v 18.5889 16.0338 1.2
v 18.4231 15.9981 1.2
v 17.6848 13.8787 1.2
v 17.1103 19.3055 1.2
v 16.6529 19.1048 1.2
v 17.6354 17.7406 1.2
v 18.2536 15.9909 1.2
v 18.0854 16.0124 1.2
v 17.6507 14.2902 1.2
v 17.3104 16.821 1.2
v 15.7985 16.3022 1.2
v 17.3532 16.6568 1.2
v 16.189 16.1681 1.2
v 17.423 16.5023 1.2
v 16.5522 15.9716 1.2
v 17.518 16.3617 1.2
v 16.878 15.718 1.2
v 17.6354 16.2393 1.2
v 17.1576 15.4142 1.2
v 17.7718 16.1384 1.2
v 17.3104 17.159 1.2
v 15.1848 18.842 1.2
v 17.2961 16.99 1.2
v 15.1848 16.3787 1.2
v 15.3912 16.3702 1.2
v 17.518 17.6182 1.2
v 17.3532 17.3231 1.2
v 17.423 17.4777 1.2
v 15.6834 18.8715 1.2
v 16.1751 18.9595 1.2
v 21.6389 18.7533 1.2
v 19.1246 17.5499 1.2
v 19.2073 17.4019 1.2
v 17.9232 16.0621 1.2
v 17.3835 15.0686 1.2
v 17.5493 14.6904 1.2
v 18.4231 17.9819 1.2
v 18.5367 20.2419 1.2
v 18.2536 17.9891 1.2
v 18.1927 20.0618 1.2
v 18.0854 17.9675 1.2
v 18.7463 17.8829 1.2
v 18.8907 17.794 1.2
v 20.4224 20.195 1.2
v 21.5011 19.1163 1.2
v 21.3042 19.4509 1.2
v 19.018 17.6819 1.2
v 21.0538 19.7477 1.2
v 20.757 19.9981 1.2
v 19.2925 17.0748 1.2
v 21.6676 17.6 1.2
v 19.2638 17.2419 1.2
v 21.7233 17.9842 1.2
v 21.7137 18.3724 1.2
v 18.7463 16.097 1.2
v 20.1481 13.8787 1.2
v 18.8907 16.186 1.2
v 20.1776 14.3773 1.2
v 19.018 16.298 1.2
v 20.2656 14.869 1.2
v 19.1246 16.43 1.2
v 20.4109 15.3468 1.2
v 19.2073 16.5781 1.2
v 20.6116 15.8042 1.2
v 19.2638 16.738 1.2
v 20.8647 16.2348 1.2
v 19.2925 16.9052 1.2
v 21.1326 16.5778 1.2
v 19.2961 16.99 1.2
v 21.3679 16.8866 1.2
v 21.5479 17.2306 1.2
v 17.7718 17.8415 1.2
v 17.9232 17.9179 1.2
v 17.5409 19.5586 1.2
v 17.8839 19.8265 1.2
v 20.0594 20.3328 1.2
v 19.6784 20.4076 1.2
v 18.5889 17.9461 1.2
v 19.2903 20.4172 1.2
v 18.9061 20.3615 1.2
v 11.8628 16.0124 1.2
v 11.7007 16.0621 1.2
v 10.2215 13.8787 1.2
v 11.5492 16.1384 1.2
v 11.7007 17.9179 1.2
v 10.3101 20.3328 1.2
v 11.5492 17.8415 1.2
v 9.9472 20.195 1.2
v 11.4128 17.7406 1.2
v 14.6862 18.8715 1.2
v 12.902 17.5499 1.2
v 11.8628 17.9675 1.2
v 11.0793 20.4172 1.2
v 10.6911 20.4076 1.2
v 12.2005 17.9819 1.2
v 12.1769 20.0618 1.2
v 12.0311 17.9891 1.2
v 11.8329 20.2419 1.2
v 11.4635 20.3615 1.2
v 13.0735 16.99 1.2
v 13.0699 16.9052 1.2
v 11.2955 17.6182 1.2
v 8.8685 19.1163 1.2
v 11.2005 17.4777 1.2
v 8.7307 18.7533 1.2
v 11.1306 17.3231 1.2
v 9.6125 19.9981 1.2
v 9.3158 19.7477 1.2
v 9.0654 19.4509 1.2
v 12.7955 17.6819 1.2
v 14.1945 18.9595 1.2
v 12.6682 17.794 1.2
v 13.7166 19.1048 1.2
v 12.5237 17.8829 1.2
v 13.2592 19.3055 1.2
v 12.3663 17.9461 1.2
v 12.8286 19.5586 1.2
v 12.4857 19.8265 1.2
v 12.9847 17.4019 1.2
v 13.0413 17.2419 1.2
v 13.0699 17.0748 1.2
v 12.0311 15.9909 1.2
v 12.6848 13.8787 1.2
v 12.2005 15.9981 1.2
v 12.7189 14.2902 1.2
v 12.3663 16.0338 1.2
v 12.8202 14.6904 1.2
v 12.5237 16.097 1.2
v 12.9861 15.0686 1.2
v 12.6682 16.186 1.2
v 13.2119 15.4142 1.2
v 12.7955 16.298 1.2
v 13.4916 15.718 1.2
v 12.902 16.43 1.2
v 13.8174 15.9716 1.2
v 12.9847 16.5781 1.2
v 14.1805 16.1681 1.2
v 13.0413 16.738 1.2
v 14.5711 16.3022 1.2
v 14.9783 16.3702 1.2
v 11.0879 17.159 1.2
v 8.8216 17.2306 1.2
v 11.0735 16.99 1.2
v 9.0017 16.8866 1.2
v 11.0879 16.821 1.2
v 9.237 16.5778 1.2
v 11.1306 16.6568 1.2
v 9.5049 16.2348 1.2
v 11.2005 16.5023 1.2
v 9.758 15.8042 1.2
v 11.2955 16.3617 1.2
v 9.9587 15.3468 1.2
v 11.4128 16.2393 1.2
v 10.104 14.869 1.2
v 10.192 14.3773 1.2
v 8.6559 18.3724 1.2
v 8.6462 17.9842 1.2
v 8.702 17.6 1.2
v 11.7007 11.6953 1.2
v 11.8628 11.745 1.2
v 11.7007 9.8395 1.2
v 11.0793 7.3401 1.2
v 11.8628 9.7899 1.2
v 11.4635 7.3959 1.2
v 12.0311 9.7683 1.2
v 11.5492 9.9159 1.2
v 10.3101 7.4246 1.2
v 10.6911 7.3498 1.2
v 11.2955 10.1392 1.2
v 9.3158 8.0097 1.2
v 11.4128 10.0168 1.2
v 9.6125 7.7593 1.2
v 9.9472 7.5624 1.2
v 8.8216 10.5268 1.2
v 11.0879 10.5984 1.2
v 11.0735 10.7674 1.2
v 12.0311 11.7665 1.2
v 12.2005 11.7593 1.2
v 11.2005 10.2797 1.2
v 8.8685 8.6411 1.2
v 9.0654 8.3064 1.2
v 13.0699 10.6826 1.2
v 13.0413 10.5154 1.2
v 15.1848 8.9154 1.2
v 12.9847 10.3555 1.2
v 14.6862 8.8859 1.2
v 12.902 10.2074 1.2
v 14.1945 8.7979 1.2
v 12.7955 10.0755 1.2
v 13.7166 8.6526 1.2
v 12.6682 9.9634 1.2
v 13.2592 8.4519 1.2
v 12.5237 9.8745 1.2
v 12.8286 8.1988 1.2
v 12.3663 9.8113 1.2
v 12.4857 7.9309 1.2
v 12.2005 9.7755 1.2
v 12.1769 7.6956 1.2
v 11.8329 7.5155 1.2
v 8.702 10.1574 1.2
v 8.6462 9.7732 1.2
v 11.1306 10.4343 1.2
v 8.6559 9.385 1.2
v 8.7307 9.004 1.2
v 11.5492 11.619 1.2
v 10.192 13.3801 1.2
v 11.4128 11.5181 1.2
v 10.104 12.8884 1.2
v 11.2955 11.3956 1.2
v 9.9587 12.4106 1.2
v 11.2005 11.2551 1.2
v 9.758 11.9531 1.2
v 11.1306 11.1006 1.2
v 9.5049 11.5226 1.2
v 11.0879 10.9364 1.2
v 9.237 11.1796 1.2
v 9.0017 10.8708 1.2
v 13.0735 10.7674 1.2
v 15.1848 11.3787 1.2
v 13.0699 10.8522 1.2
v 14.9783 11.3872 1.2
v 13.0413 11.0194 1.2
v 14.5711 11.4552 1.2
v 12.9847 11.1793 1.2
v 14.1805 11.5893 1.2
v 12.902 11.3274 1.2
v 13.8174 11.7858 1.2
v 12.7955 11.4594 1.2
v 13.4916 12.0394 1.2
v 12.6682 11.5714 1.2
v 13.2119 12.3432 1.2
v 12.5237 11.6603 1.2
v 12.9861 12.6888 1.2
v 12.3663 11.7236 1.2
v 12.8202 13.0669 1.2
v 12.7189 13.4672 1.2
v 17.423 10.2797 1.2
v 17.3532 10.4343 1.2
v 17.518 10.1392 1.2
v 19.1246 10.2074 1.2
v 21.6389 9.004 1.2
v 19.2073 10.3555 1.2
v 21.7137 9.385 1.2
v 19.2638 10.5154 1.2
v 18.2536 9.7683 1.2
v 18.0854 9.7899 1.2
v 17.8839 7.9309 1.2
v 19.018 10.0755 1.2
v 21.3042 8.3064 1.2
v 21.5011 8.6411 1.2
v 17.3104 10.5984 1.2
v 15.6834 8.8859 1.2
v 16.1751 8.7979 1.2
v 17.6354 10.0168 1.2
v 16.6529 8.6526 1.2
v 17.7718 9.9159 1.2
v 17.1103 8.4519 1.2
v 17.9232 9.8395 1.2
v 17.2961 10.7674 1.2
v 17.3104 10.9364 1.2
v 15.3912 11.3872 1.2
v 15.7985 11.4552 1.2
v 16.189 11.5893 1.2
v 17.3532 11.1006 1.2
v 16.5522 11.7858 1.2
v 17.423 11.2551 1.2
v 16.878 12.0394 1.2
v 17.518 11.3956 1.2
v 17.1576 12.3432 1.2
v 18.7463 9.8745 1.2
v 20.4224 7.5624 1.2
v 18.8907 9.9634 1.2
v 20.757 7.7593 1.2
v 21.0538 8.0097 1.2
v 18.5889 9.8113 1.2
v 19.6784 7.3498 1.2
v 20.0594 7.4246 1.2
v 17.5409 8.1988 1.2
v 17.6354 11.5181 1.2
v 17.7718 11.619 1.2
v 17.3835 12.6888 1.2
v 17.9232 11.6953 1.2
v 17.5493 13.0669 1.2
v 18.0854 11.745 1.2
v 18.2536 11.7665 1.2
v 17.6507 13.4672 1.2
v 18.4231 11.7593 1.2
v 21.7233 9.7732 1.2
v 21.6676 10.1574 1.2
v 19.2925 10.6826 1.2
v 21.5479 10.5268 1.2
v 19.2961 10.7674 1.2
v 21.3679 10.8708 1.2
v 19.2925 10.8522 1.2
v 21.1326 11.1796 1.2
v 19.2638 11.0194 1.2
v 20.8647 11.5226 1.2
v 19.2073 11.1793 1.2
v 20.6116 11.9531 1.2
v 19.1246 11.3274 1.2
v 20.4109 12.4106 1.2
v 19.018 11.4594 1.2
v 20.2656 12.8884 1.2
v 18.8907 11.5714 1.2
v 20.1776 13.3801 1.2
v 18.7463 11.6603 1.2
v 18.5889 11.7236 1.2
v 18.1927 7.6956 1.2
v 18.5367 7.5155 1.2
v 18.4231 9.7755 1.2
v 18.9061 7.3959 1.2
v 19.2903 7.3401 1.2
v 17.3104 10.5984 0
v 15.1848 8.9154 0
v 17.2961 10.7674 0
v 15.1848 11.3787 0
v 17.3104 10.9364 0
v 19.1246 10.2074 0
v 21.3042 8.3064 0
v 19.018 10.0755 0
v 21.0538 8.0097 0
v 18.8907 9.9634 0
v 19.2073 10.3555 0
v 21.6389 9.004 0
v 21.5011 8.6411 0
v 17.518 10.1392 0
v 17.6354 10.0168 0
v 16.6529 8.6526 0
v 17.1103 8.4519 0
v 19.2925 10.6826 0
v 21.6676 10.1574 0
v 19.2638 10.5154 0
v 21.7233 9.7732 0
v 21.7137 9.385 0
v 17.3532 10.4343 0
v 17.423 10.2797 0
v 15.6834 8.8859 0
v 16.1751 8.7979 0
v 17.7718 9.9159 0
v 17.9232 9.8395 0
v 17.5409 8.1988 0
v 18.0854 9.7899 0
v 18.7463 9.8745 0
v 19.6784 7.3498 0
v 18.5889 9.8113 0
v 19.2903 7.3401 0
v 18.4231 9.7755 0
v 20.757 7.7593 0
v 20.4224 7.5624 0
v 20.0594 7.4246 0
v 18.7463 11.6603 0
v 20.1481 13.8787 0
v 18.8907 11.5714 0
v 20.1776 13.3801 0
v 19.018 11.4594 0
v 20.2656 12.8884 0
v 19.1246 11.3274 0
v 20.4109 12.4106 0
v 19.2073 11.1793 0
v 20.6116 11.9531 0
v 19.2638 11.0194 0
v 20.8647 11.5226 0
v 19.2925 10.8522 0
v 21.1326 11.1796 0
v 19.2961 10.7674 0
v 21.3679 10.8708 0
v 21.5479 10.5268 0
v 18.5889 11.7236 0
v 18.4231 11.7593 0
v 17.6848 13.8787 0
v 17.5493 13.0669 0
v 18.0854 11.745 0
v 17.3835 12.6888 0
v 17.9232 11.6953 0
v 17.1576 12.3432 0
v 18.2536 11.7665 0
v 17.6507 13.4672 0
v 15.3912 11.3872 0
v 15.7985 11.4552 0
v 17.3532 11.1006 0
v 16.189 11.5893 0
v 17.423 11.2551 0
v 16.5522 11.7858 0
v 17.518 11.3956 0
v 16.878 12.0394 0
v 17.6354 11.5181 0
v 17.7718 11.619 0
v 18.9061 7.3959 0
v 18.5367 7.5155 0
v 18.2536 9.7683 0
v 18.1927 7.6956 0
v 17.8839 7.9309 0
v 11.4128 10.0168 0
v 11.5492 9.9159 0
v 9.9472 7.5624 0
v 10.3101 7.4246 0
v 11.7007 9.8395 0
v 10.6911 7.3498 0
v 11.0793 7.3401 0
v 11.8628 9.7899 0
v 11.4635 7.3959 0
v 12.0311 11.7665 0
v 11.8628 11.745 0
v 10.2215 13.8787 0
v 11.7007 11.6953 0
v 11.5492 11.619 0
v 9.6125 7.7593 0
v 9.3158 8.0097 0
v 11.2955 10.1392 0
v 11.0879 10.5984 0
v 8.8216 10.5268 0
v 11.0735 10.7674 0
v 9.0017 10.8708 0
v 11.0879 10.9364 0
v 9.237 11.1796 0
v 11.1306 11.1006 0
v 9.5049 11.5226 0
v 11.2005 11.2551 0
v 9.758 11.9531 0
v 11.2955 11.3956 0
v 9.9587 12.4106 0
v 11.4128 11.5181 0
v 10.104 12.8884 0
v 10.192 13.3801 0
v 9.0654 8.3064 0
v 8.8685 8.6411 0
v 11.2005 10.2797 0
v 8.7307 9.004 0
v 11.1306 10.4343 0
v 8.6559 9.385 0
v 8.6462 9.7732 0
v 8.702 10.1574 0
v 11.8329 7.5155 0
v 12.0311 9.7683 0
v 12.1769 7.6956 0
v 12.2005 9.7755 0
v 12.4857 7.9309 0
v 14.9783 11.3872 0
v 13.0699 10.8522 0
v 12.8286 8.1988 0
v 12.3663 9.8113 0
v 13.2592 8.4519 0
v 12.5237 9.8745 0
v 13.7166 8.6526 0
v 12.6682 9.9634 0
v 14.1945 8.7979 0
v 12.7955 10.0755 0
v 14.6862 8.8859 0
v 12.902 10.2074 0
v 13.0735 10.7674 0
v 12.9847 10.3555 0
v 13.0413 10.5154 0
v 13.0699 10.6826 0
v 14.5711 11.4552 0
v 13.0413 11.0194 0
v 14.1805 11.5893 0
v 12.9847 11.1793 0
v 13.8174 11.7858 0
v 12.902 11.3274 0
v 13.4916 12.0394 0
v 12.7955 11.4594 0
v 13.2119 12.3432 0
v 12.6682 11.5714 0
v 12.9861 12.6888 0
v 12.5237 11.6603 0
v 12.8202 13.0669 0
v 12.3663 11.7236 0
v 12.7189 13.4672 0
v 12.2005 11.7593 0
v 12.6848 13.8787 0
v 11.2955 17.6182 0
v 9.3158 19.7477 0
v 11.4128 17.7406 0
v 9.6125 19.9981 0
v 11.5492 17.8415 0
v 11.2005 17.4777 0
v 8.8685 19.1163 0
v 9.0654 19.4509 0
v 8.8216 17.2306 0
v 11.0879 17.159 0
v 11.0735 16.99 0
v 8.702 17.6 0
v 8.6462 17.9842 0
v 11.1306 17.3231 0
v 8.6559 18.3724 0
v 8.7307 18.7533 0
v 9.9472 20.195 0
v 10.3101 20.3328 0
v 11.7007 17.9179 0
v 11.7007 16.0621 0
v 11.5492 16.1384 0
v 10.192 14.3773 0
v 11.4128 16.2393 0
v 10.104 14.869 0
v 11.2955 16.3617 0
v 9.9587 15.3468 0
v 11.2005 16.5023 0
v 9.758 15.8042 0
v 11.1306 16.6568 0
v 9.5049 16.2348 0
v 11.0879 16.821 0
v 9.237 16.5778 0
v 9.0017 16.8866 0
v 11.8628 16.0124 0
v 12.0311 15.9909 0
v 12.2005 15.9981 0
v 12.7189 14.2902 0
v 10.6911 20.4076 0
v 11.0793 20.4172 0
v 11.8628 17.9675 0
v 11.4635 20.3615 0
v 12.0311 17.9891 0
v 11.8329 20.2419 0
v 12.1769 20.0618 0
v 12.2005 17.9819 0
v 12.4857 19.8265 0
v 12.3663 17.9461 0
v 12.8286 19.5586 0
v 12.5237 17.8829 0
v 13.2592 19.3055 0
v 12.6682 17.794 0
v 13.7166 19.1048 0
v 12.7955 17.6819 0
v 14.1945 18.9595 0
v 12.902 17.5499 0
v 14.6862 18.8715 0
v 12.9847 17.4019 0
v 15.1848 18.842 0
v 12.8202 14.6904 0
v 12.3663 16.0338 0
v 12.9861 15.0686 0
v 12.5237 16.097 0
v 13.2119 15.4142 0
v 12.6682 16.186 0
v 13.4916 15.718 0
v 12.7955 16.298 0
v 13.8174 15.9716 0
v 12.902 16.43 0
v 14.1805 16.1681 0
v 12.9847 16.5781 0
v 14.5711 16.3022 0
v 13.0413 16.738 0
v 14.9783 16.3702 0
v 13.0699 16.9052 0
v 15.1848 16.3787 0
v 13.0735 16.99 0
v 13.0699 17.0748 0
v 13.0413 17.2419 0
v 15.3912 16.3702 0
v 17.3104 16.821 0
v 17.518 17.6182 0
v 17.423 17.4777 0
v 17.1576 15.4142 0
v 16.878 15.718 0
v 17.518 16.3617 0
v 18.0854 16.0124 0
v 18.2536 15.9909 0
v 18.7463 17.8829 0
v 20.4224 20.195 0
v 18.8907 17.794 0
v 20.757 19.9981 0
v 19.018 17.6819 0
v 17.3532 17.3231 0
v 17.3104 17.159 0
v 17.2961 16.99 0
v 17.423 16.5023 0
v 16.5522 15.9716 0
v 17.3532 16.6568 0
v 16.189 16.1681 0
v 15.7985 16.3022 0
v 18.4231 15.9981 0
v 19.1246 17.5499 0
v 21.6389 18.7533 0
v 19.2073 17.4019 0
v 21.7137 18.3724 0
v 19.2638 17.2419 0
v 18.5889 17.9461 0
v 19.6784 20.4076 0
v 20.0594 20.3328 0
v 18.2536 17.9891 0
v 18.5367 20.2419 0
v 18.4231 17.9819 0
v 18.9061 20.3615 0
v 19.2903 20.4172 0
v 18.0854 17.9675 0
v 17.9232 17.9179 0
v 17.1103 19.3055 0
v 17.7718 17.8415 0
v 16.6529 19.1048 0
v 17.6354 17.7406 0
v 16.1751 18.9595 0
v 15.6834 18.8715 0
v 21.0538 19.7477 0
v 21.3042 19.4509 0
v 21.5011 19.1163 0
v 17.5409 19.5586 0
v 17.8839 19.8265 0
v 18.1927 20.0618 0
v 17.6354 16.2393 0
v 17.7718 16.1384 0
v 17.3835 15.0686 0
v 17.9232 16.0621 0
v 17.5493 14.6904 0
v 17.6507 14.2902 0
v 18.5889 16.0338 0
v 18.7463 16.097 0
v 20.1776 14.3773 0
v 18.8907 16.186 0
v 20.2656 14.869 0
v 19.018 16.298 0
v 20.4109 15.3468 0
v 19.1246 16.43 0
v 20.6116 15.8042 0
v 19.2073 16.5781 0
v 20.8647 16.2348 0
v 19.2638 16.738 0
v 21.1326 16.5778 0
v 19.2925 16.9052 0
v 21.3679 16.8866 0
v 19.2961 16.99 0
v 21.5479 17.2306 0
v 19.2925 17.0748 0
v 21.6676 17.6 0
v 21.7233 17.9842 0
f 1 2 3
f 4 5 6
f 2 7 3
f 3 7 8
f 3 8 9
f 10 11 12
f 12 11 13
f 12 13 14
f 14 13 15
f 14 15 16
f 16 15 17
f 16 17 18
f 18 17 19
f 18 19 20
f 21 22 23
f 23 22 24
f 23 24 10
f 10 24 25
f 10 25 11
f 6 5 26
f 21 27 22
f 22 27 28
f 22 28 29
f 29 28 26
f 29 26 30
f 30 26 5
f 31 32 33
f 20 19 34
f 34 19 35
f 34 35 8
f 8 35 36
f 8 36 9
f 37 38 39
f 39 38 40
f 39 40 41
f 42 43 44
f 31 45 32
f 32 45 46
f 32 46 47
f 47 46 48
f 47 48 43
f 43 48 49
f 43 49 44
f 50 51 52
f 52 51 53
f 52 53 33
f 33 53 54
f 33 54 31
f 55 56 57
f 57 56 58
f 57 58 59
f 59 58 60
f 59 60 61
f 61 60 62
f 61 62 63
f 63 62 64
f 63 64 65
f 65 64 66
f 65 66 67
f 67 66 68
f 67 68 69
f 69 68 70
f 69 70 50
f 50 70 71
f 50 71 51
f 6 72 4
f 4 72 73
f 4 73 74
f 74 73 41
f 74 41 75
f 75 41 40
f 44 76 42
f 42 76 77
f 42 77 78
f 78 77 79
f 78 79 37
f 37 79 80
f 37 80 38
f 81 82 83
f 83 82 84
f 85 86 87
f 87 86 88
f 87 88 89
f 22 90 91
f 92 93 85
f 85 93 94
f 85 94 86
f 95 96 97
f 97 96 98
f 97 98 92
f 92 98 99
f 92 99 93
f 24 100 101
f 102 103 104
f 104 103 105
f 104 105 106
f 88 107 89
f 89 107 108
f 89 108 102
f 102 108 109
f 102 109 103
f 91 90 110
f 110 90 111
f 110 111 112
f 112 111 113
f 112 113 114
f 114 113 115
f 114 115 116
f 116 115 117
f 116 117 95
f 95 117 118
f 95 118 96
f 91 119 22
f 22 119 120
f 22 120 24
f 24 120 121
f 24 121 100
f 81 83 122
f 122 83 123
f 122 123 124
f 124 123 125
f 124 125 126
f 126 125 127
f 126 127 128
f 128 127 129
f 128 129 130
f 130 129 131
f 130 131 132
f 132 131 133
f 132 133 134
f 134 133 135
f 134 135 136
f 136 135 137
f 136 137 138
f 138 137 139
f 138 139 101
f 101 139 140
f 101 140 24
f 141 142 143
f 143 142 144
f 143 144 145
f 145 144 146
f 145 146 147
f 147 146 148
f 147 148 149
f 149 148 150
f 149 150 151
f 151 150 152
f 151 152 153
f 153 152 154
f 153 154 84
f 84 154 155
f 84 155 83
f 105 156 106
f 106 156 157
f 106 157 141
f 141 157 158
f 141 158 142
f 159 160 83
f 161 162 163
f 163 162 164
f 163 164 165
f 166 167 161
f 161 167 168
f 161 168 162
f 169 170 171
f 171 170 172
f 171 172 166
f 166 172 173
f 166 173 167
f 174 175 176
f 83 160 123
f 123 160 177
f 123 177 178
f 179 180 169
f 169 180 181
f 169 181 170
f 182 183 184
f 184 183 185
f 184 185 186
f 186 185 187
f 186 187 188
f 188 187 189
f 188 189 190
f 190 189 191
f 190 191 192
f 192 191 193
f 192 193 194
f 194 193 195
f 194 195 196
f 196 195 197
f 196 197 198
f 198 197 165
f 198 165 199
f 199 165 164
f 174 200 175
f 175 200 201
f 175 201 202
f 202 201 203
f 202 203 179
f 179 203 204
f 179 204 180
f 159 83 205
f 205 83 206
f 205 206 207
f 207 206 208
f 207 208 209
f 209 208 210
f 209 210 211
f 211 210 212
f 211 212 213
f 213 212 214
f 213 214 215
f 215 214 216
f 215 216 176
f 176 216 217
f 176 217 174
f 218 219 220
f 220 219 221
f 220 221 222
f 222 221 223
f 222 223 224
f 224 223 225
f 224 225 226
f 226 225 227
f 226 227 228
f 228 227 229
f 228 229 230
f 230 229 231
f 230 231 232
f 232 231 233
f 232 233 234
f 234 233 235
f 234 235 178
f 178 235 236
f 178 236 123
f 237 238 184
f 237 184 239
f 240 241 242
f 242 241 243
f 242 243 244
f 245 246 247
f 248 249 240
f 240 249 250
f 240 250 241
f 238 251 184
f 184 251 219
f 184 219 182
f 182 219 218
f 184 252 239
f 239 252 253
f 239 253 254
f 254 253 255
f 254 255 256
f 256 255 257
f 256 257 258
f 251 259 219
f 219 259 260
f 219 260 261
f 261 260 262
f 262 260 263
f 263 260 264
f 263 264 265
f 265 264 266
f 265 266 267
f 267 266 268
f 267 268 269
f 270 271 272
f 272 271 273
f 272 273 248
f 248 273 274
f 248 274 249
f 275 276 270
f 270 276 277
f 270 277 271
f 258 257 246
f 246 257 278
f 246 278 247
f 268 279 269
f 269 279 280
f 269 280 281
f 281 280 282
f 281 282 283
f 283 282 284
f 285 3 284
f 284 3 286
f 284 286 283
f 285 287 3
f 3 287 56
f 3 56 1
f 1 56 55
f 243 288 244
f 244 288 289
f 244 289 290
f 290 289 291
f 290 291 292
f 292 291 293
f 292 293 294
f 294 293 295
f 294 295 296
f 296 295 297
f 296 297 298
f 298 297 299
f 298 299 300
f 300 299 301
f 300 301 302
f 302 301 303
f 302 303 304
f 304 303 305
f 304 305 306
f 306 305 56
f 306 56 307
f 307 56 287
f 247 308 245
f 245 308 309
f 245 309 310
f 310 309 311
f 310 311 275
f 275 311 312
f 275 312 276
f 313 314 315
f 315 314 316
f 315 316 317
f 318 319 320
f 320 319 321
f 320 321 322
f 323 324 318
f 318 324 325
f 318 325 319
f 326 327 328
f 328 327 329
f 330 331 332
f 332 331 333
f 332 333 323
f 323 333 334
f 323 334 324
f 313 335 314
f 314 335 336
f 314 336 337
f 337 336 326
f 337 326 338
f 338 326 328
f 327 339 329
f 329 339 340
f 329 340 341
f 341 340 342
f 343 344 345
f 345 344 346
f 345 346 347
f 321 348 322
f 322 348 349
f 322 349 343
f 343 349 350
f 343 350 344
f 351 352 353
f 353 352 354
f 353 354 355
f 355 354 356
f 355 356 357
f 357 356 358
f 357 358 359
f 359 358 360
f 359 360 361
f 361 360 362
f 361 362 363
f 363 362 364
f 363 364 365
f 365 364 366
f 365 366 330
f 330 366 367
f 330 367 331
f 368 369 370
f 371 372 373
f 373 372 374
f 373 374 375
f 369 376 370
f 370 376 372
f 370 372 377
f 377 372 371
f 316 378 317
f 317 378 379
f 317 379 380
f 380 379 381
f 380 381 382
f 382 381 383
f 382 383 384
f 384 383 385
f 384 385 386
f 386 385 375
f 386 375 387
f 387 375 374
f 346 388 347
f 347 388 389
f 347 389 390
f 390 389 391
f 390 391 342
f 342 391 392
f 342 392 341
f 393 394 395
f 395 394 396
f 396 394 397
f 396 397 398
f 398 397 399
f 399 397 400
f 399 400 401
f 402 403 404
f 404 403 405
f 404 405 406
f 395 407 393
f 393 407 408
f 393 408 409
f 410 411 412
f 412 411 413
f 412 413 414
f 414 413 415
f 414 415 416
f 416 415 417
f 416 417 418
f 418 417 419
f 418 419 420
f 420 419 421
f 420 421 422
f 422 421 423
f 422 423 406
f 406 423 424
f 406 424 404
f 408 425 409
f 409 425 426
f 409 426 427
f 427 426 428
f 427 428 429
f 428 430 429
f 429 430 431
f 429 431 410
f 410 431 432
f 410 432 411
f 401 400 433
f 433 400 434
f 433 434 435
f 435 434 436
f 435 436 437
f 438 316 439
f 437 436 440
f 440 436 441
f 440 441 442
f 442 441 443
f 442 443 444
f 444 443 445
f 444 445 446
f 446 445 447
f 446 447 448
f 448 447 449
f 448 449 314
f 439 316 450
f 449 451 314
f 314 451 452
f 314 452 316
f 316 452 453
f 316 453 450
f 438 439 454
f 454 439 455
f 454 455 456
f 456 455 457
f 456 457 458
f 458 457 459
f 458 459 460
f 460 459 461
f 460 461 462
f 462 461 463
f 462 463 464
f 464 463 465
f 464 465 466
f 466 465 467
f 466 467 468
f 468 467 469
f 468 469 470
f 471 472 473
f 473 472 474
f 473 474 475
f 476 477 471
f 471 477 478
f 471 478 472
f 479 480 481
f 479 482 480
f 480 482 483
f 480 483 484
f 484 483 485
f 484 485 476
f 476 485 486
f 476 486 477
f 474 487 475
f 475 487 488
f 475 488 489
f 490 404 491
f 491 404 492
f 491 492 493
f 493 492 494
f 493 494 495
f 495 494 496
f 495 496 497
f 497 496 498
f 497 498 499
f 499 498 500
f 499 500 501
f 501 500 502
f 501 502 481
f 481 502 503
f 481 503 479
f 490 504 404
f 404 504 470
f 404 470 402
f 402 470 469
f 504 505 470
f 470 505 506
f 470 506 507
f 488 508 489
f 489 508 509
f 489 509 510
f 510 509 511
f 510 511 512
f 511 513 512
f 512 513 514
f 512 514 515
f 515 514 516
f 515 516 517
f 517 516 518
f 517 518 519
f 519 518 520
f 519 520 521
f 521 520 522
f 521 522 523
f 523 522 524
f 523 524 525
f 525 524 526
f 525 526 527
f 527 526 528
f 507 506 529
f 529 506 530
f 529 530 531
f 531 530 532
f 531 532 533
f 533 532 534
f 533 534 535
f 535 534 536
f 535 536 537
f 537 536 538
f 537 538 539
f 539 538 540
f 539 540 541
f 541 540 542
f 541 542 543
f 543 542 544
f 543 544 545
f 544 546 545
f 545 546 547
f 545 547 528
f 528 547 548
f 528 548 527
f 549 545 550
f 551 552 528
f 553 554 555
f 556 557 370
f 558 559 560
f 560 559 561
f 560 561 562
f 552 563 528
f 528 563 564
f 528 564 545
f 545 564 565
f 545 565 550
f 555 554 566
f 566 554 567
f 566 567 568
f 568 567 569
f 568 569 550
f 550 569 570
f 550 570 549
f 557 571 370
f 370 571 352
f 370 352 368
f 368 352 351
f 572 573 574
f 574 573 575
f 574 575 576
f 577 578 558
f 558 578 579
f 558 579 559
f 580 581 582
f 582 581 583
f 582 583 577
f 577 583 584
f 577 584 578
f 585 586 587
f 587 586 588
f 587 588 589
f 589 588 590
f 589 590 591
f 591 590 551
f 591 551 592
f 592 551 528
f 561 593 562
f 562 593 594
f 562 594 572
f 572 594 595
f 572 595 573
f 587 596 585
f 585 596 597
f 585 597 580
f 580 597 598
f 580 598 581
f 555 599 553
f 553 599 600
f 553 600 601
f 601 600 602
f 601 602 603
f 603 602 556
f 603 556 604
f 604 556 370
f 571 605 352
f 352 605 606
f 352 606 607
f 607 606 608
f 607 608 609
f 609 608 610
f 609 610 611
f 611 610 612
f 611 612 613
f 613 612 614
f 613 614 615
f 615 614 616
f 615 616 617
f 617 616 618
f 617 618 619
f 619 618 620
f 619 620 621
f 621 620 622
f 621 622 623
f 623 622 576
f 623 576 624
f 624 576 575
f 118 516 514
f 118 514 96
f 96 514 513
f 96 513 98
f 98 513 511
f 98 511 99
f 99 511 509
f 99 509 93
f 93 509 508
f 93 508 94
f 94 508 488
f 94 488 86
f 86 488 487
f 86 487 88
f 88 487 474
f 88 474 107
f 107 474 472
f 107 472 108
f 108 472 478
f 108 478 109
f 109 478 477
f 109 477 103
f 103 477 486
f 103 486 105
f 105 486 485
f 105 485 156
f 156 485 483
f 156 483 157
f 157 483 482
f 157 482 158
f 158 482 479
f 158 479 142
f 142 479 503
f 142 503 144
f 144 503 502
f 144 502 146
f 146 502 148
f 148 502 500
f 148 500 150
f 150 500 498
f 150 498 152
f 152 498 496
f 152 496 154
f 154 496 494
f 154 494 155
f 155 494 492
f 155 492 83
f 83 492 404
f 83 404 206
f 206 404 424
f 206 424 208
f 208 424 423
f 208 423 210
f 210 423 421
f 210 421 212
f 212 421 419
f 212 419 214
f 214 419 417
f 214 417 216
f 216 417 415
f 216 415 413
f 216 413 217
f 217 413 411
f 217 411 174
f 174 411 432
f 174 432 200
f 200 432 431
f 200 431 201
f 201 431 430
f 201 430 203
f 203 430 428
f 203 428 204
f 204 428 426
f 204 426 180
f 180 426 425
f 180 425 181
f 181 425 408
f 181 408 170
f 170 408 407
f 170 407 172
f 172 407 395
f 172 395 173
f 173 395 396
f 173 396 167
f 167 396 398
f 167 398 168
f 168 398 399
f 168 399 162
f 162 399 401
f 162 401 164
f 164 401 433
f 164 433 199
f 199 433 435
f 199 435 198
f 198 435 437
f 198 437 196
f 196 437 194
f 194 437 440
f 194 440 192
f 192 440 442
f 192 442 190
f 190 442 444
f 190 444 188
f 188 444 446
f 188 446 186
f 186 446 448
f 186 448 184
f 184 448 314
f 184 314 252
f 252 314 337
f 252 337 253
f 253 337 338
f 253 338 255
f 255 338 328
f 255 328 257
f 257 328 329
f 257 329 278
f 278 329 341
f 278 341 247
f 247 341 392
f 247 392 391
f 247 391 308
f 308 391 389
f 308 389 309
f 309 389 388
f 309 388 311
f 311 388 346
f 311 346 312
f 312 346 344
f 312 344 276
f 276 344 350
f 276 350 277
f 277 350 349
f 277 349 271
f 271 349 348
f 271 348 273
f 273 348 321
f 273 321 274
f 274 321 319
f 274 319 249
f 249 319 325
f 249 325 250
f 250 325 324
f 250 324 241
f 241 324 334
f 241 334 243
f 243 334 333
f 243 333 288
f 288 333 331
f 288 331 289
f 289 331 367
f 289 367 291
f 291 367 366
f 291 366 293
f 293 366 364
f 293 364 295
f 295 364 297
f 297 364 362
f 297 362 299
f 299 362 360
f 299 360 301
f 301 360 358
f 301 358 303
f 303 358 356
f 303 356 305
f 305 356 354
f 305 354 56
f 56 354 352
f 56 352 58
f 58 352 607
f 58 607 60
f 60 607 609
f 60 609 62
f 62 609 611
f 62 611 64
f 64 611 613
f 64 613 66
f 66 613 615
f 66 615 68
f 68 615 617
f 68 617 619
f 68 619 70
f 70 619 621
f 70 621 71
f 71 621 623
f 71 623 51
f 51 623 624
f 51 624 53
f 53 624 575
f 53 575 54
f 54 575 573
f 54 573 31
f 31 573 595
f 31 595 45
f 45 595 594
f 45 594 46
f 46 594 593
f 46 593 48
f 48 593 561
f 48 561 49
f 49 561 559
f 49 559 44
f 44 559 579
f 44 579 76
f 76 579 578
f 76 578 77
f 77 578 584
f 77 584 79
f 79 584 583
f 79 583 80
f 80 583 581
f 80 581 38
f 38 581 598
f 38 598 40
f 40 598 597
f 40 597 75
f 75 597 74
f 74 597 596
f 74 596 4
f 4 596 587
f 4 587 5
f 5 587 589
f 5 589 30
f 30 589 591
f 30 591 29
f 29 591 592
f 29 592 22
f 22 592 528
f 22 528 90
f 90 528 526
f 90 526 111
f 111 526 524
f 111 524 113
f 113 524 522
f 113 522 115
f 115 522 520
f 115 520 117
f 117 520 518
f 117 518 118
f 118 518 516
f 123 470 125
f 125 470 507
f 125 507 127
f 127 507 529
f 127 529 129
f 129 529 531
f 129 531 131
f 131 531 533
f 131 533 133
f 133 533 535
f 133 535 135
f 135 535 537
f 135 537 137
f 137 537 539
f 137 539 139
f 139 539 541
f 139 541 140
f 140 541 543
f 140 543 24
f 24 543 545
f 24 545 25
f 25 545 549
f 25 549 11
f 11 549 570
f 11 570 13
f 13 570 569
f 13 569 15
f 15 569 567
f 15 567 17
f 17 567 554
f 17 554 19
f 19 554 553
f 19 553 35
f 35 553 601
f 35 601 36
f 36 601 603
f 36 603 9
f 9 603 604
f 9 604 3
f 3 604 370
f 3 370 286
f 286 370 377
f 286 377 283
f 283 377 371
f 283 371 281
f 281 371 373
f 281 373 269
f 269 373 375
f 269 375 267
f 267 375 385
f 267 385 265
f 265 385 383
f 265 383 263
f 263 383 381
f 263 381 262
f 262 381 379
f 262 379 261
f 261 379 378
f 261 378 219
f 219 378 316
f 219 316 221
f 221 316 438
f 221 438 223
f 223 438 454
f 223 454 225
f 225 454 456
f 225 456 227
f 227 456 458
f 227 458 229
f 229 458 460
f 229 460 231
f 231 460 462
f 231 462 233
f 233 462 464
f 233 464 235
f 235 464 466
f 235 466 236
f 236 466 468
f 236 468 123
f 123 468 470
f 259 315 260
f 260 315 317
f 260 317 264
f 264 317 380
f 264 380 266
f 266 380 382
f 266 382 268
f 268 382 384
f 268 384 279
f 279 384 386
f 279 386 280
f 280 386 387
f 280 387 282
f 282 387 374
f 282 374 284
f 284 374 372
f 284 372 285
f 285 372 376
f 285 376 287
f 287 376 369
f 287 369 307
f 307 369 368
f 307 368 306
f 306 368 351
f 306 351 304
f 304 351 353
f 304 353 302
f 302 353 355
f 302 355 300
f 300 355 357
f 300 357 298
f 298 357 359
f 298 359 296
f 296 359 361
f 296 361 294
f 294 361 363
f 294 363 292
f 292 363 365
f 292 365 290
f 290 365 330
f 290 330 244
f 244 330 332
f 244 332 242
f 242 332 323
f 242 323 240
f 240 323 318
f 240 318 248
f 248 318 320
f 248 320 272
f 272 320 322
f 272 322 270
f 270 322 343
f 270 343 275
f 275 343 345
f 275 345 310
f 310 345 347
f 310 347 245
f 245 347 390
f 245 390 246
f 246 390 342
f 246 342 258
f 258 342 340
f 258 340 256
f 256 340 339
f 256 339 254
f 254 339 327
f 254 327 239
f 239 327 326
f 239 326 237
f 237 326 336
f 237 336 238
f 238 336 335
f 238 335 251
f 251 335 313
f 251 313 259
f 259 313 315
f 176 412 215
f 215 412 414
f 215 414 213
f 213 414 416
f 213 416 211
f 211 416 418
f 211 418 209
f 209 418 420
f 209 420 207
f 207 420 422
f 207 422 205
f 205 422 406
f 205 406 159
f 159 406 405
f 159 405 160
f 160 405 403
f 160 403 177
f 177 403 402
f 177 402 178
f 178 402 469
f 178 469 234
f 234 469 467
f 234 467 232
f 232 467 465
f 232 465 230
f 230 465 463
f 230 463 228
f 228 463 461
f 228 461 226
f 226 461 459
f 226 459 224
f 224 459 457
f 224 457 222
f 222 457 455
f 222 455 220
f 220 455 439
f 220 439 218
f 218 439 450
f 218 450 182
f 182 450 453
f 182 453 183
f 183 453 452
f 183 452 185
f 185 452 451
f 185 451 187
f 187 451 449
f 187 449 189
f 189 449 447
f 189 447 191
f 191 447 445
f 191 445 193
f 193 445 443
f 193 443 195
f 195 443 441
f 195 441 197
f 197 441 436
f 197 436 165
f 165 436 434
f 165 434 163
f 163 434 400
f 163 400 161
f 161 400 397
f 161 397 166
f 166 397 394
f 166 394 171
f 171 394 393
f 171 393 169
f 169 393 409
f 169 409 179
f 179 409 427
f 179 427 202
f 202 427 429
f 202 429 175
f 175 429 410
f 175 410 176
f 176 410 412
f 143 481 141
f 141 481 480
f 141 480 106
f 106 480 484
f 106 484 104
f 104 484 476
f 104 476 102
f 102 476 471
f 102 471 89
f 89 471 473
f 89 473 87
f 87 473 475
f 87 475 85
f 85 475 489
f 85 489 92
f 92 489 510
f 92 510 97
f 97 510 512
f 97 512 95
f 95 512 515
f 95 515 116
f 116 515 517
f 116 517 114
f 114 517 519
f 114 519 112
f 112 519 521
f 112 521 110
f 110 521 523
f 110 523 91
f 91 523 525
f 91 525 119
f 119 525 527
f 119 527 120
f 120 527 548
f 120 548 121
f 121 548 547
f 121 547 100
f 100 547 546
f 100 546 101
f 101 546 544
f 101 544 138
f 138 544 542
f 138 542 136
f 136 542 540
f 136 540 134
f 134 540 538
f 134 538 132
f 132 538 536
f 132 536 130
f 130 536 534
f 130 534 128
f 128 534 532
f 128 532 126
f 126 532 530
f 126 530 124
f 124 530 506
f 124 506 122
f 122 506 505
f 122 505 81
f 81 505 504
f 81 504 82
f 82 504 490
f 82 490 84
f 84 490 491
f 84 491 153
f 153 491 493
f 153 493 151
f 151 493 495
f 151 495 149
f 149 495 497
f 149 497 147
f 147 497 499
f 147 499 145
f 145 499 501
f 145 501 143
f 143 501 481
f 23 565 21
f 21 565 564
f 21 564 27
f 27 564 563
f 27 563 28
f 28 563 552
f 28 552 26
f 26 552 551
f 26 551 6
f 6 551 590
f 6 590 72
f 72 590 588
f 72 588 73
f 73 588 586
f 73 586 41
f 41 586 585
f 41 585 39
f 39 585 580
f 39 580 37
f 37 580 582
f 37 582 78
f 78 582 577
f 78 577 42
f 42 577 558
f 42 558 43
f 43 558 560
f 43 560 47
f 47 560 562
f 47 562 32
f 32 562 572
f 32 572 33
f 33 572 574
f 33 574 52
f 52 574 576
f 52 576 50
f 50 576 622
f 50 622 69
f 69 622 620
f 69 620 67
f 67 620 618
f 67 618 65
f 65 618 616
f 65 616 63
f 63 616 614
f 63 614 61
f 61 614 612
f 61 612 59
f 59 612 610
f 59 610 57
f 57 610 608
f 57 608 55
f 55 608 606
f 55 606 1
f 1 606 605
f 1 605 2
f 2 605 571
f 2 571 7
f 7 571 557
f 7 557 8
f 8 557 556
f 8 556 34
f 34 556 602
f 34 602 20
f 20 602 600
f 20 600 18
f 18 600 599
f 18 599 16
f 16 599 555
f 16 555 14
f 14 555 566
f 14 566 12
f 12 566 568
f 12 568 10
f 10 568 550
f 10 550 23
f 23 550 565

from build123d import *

# Parameters (mm, degrees)
MODEL_R         = 1
MODEL_R_2       = 2.5
EXTRUDE_1_DEPTH = 1.2


with BuildPart() as part:
    # Model → 凸台-拉伸1 (new body)
    with BuildSketch(Plane.XY):
        with BuildLine():
            ThreePointArc((12.485683382, 19.826470809), (12.652302696, 19.686300725), (12.828649886, 19.55858496))
            ThreePointArc((12.828649886, 19.55858496), (15.184787498, 18.84198425), (17.540925109, 19.55858496))
            ThreePointArc((17.540925109, 19.55858496), (17.7172723, 19.686300725), (17.883891613, 19.826470809))
            ThreePointArc((17.883891613, 19.826470809), (21.053773782, 19.747678625), (21.132565966, 16.577796457))
            ThreePointArc((21.132565966, 16.577796457), (20.992395882, 16.411177143), (20.864680117, 16.234829953))
            ThreePointArc((20.864680117, 16.234829953), (20.148079407, 13.878692341), (20.864680117, 11.522554729))
            ThreePointArc((20.864680117, 11.522554729), (20.992395882, 11.346207539), (21.132565966, 11.179588225))
            ThreePointArc((21.132565966, 11.179588225), (21.053773782, 8.009706057), (17.883891613, 7.930913873))
            ThreePointArc((17.883891613, 7.930913873), (17.7172723, 8.071083957), (17.540925109, 8.198799722))
            ThreePointArc((17.540925109, 8.198799722), (15.184787498, 8.915400432), (12.828649886, 8.198799722))
            ThreePointArc((12.828649886, 8.198799722), (12.652302696, 8.071083957), (12.485683382, 7.930913873))
            ThreePointArc((12.485683382, 7.930913873), (9.315801214, 8.009706057), (9.237009029, 11.179588225))
            ThreePointArc((9.237009029, 11.179588225), (9.377179113, 11.346207539), (9.504894878, 11.522554729))
            ThreePointArc((9.504894878, 11.522554729), (10.221495588, 13.878692341), (9.504894878, 16.234829953))
            ThreePointArc((9.504894878, 16.234829953), (9.377179113, 16.411177143), (9.237009029, 16.577796457))
            ThreePointArc((9.237009029, 16.577796457), (9.315801214, 19.747678625), (12.485683382, 19.826470809))
        make_face()
        with Locations((18.296057335, 16.989962178)):
            Circle(MODEL_R, mode=Mode.SUBTRACT)
        with Locations((12.07351766, 16.989962178)):
            Circle(MODEL_R, mode=Mode.SUBTRACT)
        with Locations((12.07351766, 10.767422504)):
            Circle(MODEL_R, mode=Mode.SUBTRACT)
        with Locations((18.296057335, 10.767422504)):
            Circle(MODEL_R, mode=Mode.SUBTRACT)
        with Locations((15.184787498, 13.878692341)):
            Circle(MODEL_R_2, mode=Mode.SUBTRACT)
    extrude(amount=EXTRUDE_1_DEPTH)


solid = part.part
